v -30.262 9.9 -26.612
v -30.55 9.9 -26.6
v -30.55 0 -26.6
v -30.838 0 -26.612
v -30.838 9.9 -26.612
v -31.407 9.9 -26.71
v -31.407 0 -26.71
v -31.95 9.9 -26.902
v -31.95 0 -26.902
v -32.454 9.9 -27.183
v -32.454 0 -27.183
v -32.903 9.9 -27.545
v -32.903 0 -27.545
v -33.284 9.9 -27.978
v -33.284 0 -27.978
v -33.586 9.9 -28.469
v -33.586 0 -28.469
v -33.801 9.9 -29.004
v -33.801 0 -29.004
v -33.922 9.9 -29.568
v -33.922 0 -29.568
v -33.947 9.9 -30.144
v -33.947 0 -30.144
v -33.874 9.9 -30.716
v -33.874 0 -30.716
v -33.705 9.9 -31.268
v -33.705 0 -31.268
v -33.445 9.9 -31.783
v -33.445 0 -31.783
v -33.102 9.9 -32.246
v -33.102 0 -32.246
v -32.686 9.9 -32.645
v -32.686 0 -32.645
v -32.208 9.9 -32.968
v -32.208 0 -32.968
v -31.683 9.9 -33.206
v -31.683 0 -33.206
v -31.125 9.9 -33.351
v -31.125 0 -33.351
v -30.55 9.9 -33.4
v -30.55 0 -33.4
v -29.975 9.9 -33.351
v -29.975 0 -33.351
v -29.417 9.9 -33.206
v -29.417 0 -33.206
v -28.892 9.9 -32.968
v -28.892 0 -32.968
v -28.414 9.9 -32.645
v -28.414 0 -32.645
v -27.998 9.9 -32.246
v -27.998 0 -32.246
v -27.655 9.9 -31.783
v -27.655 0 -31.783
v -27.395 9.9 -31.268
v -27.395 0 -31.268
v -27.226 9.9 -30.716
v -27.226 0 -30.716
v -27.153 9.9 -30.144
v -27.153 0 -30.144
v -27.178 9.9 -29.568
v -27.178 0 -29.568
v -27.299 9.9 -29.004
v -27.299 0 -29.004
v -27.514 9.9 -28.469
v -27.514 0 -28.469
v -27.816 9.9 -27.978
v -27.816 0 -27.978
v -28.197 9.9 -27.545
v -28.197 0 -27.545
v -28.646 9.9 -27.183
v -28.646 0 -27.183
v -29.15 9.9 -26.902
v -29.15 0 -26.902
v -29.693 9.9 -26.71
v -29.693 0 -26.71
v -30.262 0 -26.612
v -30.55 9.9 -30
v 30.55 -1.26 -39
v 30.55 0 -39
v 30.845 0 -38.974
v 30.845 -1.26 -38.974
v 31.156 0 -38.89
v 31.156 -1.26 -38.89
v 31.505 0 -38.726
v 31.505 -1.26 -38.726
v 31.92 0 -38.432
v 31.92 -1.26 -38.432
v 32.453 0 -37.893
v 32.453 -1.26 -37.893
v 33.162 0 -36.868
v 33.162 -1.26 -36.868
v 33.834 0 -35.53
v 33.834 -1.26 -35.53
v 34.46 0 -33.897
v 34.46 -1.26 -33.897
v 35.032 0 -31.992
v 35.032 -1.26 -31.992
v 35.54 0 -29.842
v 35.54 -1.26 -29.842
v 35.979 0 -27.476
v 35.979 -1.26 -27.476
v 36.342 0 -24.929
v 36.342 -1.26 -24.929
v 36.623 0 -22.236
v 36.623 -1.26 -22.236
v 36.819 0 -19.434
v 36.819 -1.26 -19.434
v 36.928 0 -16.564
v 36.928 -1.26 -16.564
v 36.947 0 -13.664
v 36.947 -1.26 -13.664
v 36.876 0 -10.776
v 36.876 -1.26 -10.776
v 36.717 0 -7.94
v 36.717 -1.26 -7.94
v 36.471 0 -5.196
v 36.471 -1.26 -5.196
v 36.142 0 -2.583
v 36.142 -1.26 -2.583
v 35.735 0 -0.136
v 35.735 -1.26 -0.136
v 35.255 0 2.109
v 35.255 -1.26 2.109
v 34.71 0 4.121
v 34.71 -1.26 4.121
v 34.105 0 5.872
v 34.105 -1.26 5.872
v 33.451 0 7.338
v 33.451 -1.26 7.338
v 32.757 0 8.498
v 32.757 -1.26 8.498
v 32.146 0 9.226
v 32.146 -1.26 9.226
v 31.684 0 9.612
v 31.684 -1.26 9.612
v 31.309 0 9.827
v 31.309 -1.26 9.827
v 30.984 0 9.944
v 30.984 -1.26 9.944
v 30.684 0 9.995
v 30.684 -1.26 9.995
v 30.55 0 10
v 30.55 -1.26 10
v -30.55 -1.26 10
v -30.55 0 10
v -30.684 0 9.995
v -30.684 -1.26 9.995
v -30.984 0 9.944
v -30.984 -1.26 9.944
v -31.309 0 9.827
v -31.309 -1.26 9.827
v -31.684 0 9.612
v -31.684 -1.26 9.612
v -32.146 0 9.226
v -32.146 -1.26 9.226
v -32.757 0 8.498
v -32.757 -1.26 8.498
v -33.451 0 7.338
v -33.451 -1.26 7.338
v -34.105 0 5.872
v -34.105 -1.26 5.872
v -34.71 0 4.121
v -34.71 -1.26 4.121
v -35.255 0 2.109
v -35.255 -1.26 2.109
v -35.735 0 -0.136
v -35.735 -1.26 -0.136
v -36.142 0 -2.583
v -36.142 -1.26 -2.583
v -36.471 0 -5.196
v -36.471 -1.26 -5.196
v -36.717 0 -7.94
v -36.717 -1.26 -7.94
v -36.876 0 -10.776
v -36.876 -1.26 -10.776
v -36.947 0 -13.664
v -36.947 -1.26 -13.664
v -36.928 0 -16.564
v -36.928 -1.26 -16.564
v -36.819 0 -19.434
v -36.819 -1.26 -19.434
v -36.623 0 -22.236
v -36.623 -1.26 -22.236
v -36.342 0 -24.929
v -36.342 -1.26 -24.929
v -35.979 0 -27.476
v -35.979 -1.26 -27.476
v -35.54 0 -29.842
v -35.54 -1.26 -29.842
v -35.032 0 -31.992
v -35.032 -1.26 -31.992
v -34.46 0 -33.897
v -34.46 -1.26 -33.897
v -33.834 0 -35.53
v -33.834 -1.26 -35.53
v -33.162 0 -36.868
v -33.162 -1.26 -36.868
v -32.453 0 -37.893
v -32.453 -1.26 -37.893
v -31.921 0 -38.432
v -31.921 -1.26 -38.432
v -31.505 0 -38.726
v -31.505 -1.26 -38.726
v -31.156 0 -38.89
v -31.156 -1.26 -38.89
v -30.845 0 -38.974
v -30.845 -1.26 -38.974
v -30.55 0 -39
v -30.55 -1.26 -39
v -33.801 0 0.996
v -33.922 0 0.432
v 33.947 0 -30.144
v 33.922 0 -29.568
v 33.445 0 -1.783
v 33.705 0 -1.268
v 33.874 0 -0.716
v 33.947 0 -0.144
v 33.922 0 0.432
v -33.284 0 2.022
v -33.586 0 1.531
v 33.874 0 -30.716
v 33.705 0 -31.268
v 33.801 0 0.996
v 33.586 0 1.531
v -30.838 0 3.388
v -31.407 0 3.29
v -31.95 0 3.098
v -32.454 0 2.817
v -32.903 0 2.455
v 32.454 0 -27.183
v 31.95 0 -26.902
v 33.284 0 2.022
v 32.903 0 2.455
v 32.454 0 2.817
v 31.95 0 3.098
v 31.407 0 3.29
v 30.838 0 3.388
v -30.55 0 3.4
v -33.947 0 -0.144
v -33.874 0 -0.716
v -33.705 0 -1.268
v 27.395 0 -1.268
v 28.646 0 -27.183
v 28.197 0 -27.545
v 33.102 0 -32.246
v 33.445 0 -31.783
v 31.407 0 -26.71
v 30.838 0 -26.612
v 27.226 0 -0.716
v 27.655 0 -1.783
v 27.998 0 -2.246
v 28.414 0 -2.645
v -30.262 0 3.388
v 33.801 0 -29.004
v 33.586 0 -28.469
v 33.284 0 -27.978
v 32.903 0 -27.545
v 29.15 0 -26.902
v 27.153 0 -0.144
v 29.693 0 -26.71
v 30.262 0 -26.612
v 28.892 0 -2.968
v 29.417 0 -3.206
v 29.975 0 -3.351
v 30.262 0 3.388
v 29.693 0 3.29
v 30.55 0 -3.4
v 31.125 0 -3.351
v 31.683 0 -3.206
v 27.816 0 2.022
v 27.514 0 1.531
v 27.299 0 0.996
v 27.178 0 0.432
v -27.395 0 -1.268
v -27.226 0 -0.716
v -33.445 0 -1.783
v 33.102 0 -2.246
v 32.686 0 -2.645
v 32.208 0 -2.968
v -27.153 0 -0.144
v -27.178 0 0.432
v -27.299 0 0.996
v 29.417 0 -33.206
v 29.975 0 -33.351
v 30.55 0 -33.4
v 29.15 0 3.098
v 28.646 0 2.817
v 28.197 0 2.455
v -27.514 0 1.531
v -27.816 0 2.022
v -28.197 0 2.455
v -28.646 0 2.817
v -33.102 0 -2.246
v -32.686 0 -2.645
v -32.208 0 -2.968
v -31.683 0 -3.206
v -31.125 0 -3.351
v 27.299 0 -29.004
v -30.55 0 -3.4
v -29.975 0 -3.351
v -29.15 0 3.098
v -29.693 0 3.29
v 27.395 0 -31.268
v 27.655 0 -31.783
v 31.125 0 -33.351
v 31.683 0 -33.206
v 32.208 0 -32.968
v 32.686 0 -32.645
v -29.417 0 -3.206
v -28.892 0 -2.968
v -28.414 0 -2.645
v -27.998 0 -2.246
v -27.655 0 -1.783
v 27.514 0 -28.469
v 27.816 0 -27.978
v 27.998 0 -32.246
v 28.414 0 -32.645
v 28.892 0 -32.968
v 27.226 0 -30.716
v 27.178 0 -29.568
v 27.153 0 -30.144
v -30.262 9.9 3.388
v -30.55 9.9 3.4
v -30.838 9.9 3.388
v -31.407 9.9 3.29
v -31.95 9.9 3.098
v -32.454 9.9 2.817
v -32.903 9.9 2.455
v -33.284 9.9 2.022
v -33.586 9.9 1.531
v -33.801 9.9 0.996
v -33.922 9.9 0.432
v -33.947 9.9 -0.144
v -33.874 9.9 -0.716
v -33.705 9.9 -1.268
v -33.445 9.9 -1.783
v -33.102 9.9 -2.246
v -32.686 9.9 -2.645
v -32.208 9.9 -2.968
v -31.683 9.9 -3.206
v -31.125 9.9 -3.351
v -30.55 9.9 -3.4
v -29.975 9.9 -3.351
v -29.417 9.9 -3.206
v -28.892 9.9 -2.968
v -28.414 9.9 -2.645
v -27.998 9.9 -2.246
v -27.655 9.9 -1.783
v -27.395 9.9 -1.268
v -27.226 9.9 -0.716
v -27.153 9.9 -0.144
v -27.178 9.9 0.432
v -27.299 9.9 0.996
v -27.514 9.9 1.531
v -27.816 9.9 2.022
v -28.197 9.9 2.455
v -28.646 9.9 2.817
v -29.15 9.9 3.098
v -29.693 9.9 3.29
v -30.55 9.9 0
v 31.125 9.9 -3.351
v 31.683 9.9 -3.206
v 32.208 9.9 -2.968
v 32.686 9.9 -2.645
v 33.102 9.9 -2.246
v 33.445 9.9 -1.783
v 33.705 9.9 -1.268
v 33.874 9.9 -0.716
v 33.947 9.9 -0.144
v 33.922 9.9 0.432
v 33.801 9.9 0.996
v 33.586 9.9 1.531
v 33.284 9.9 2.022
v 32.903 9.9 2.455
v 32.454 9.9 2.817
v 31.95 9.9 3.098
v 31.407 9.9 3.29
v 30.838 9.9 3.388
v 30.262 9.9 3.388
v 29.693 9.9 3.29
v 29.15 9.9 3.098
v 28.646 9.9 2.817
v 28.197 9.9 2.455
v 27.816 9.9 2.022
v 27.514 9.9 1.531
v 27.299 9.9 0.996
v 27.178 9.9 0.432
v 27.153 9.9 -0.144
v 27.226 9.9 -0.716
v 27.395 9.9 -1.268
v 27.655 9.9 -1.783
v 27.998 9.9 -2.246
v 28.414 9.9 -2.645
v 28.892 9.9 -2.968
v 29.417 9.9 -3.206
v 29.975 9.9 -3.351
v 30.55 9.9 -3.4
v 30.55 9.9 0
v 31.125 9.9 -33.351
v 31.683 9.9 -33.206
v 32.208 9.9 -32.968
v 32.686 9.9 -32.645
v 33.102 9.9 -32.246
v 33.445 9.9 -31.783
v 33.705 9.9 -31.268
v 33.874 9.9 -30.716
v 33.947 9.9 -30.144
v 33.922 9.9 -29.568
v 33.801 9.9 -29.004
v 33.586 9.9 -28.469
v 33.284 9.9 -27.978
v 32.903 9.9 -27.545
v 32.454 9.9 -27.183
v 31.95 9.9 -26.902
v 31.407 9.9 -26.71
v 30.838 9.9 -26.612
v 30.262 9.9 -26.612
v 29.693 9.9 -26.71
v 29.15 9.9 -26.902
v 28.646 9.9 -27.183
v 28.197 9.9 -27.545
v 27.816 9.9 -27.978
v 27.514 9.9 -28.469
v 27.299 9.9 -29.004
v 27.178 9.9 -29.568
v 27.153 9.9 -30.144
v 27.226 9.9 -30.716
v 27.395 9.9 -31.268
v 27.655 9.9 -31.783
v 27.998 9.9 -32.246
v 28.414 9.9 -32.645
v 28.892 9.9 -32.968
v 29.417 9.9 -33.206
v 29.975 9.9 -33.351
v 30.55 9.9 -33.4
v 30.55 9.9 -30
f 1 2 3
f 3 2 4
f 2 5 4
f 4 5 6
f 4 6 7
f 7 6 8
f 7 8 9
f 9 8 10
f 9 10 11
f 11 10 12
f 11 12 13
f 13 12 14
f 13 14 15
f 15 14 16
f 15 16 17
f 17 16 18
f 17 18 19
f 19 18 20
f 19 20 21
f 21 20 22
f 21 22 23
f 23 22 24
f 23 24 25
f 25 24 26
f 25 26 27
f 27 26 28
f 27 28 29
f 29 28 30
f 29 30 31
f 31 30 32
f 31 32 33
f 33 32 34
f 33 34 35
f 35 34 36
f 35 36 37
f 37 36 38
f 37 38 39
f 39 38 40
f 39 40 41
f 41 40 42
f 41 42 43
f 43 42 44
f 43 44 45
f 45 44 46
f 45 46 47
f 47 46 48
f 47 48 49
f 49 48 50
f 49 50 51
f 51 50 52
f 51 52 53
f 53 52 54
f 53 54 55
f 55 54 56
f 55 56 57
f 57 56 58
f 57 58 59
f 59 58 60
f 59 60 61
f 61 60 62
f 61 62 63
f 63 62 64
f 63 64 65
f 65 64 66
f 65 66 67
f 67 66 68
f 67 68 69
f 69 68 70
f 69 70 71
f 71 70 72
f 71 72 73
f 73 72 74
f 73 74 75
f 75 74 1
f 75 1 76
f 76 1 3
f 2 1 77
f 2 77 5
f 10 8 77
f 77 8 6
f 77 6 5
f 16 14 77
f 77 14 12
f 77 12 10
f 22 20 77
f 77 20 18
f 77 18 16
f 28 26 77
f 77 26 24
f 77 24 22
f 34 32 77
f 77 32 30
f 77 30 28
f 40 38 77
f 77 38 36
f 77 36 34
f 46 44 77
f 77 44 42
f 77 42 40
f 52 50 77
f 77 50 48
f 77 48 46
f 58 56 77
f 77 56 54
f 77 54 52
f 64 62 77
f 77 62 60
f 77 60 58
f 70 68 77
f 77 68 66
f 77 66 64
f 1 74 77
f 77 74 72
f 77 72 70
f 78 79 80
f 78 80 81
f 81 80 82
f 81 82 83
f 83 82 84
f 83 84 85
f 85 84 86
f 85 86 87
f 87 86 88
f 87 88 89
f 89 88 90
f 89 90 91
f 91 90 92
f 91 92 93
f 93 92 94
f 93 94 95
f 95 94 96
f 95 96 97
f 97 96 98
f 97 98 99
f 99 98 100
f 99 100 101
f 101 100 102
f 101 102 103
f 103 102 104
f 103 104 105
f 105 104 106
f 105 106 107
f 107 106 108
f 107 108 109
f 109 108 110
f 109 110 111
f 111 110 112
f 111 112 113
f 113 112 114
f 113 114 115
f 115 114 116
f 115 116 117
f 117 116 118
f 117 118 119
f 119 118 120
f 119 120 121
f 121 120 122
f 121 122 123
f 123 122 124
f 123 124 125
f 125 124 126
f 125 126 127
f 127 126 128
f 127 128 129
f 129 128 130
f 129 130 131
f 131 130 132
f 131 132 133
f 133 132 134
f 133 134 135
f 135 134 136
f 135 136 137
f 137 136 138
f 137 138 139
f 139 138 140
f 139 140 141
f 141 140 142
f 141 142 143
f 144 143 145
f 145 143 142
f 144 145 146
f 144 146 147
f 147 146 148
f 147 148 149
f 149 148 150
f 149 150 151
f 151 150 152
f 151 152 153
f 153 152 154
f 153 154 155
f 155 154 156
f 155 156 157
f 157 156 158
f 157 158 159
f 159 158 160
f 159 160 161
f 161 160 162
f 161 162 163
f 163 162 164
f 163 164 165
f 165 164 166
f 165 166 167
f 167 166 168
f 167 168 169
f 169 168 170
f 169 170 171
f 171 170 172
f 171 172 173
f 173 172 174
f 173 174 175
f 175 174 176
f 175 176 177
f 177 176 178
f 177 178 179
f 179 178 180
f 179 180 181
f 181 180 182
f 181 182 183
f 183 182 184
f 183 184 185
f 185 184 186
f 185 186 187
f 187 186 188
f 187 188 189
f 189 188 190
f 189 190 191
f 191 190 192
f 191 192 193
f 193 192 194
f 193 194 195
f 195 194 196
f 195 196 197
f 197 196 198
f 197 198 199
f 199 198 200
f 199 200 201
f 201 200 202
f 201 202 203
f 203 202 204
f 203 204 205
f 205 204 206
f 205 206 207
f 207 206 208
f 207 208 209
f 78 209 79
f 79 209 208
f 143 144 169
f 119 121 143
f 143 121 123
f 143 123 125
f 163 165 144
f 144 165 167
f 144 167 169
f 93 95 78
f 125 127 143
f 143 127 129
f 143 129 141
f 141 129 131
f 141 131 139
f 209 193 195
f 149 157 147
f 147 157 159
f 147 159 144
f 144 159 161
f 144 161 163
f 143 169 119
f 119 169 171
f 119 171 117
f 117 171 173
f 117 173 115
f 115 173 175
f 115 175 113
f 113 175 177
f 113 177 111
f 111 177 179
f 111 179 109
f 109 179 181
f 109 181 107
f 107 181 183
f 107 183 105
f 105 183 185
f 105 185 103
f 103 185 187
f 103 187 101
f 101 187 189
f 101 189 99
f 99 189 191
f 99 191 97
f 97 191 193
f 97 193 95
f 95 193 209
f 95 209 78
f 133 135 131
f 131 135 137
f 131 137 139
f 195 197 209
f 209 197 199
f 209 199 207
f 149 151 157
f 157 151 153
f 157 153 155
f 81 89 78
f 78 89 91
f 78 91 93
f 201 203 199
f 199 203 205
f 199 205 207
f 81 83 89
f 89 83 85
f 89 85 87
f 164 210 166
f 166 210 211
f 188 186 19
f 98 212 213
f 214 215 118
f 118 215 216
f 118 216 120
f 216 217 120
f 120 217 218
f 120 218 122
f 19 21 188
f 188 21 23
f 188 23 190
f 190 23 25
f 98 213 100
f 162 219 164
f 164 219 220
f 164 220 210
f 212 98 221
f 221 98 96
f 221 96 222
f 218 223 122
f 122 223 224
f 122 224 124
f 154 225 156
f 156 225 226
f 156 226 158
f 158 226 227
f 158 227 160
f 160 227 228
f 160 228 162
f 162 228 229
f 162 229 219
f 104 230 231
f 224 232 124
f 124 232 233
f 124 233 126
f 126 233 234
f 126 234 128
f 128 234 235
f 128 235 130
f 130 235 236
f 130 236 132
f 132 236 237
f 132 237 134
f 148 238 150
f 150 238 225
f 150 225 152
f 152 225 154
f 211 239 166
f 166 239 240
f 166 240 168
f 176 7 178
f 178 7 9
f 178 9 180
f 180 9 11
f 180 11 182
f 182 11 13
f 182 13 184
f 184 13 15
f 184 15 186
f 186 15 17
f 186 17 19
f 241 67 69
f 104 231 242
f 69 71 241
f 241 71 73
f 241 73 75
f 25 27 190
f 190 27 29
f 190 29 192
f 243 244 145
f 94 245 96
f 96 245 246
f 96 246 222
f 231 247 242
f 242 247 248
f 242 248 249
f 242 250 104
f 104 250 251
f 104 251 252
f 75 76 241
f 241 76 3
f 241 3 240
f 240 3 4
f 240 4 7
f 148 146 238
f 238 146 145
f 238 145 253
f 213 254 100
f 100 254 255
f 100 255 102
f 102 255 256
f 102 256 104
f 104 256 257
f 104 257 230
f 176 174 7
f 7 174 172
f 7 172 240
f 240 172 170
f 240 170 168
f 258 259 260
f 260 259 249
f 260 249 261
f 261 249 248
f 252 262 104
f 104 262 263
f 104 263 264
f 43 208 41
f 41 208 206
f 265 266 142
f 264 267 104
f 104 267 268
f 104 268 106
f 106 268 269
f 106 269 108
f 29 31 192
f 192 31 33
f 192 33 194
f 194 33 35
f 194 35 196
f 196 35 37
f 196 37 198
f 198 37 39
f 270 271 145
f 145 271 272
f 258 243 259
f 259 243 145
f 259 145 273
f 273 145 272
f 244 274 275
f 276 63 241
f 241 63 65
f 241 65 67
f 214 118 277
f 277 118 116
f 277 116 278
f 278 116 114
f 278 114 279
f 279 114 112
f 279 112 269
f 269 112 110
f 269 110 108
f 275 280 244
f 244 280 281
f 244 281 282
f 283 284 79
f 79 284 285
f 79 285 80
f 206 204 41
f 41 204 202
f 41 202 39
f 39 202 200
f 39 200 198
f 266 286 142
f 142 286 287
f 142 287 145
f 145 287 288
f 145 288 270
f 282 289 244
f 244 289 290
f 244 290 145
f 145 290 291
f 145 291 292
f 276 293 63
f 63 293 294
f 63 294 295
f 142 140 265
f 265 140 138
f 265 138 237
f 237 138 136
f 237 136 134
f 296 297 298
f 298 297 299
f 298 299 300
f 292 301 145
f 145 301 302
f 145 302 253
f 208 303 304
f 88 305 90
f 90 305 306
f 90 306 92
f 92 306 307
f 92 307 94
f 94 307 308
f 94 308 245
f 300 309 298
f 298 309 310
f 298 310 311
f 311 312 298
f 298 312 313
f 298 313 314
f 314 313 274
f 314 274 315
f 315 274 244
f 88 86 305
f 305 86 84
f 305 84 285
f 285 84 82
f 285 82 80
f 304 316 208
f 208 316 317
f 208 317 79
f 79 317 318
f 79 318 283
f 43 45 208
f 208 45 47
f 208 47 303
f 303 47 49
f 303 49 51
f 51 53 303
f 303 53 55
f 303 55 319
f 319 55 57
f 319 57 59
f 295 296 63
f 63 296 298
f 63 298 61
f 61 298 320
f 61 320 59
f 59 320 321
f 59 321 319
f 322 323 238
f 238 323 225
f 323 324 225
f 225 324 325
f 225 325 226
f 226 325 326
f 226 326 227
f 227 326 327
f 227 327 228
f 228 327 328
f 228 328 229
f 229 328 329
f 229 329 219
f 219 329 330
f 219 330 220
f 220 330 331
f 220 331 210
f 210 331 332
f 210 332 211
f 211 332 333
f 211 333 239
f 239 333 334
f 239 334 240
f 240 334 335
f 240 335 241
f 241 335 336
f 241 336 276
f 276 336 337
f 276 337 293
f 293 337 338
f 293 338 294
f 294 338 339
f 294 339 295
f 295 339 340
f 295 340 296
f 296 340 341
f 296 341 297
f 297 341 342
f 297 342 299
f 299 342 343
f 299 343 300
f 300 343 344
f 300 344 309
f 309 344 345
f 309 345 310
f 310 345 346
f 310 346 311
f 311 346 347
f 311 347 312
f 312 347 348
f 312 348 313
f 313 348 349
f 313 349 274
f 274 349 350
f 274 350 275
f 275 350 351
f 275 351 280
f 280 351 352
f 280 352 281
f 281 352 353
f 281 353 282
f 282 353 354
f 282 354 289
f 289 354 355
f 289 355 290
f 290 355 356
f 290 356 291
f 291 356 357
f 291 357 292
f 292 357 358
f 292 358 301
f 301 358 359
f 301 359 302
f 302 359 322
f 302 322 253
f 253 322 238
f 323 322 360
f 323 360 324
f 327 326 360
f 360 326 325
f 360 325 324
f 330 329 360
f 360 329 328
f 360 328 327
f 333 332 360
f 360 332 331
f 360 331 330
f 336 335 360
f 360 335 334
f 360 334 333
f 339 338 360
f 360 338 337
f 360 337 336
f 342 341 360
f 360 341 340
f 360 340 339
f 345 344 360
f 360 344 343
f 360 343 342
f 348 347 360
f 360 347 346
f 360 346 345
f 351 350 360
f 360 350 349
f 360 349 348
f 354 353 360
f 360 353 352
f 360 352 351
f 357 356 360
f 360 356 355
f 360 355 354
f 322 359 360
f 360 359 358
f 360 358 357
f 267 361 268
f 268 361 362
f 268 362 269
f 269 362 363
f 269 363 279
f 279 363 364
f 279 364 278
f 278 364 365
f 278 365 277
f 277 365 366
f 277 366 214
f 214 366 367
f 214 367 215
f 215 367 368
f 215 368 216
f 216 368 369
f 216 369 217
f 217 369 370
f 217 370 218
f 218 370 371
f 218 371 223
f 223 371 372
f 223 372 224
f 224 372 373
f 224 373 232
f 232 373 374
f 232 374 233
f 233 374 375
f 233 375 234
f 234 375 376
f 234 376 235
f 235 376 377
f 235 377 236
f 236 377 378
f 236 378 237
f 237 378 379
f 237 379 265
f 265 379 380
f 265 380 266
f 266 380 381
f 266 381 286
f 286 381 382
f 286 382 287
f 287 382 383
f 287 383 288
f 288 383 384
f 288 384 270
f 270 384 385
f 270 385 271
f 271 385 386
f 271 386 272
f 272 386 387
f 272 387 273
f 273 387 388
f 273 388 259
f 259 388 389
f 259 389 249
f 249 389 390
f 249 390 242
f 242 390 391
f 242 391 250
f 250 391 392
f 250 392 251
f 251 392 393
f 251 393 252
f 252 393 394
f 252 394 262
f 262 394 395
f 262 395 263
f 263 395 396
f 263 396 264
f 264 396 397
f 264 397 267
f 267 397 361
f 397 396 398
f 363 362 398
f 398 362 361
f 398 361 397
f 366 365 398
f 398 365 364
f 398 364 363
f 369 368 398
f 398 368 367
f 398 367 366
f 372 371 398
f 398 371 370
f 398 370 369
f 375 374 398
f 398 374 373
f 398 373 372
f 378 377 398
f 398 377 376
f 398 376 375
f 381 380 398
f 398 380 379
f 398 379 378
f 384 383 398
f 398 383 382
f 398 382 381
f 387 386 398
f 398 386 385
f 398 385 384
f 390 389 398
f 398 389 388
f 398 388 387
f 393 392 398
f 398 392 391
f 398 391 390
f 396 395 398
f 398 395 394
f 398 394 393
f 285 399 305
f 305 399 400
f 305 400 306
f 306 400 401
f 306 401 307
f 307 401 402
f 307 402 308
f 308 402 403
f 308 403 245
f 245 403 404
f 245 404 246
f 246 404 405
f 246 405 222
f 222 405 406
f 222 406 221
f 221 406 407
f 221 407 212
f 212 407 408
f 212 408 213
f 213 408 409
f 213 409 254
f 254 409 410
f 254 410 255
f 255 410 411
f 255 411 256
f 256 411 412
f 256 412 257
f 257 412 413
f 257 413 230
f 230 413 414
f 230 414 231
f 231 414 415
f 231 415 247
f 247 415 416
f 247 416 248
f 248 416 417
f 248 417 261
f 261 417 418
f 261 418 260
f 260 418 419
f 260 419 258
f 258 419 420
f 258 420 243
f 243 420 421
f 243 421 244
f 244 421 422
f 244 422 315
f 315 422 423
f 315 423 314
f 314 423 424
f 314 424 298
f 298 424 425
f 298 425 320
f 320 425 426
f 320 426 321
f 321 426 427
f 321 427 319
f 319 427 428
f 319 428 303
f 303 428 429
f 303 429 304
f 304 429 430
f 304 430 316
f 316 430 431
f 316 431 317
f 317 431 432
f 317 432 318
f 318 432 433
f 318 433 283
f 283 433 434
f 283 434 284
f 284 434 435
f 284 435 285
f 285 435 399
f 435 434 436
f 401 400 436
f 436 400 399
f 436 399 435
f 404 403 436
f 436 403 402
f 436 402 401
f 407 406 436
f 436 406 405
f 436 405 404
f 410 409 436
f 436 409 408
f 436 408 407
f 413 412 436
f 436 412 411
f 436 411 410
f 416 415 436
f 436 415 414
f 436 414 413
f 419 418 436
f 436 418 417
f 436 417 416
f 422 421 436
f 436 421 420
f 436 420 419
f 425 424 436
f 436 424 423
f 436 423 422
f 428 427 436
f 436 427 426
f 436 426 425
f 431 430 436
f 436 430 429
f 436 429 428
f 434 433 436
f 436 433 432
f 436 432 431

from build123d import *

# Parameters (mm, degrees)
ESBO_O1_R                  = 3.4
RESSALTO_EXTRUS_O1_DEPTH   = 9.9
RESSALTO_EXTRUS_O1_2_DEPTH = 9.9
RESSALTO_EXTRUS_O1_3_DEPTH = 9.9
RESSALTO_EXTRUS_O1_4_DEPTH = 9.9
ESBO_O3_RX                 = 24.5
ESBO_O3_RY                 = 6.4005522
ESBO_O3_W                  = 61.1
ESBO_O3_H                  = 49
RESSALTO_EXTRUS_O2_DEPTH   = 1.26


with BuildPart() as part:
    # Esboço1 → Ressalto-extrusão1 (new body)
    with BuildSketch(Plane(origin=(0, 0, 0), x_dir=(1, 0, 0), z_dir=(0, 1, 0))):
        with Locations(Location((-30.55, 30, 0), (0, 0, 90))):
            Circle(ESBO_O1_R)
    extrude(amount=RESSALTO_EXTRUS_O1_DEPTH)



with BuildPart() as body_2:
    # Esboço1 → Ressalto-extrus_o1 2 (new body)
    with BuildSketch(Plane(origin=(0, 0, 0), x_dir=(1, 0, 0), z_dir=(0, 1, 0))):
        with Locations(Location((-30.55, 0, 0), (0, 0, 90))):
            Circle(ESBO_O1_R)
    extrude(amount=RESSALTO_EXTRUS_O1_2_DEPTH)


with BuildPart() as body_3:
    # Esboço1 → Ressalto-extrus_o1 3 (new body)
    with BuildSketch(Plane(origin=(0, 0, 0), x_dir=(1, 0, 0), z_dir=(0, 1, 0))):
        with Locations(Location((30.55, 0, 0), (0, 0, 90))):
            Circle(ESBO_O1_R)
    extrude(amount=RESSALTO_EXTRUS_O1_3_DEPTH)


with BuildPart() as body_4:
    # Esboço1 → Ressalto-extrus_o1 4 (new body)
    with BuildSketch(Plane(origin=(0, 0, 0), x_dir=(1, 0, 0), z_dir=(0, 1, 0))):
        with Locations(Location((30.55, 30, 0), (0, 0, 90))):
            Circle(ESBO_O1_R)
    extrude(amount=RESSALTO_EXTRUS_O1_4_DEPTH)


with BuildPart() as part_1:
    add(part.part)

    add(body_2.part)  # Ressalto-extrusão2 merges body 2

    add(body_3.part)  # Ressalto-extrusão2 merges body 3

    add(body_4.part)  # Ressalto-extrusão2 merges body 4
    # Esboço3 → Ressalto-extrusão2 (add)
    with BuildSketch(Plane(origin=(0, 0, 0), x_dir=(1, 0, 0), z_dir=(0, 1, 0))):
        with Locations(Location((-30.55, 14.5), (0, 0, 90))):
            Ellipse(ESBO_O3_RX, ESBO_O3_RY)
        with Locations(Location((30.55, 14.5), (0, 0, 90))):
            Ellipse(ESBO_O3_RX, ESBO_O3_RY)
        with Locations((0, 14.5)):
            Rectangle(ESBO_O3_W, ESBO_O3_H)
    extrude(amount=-RESSALTO_EXTRUS_O2_DEPTH)


solid = part_1.part
